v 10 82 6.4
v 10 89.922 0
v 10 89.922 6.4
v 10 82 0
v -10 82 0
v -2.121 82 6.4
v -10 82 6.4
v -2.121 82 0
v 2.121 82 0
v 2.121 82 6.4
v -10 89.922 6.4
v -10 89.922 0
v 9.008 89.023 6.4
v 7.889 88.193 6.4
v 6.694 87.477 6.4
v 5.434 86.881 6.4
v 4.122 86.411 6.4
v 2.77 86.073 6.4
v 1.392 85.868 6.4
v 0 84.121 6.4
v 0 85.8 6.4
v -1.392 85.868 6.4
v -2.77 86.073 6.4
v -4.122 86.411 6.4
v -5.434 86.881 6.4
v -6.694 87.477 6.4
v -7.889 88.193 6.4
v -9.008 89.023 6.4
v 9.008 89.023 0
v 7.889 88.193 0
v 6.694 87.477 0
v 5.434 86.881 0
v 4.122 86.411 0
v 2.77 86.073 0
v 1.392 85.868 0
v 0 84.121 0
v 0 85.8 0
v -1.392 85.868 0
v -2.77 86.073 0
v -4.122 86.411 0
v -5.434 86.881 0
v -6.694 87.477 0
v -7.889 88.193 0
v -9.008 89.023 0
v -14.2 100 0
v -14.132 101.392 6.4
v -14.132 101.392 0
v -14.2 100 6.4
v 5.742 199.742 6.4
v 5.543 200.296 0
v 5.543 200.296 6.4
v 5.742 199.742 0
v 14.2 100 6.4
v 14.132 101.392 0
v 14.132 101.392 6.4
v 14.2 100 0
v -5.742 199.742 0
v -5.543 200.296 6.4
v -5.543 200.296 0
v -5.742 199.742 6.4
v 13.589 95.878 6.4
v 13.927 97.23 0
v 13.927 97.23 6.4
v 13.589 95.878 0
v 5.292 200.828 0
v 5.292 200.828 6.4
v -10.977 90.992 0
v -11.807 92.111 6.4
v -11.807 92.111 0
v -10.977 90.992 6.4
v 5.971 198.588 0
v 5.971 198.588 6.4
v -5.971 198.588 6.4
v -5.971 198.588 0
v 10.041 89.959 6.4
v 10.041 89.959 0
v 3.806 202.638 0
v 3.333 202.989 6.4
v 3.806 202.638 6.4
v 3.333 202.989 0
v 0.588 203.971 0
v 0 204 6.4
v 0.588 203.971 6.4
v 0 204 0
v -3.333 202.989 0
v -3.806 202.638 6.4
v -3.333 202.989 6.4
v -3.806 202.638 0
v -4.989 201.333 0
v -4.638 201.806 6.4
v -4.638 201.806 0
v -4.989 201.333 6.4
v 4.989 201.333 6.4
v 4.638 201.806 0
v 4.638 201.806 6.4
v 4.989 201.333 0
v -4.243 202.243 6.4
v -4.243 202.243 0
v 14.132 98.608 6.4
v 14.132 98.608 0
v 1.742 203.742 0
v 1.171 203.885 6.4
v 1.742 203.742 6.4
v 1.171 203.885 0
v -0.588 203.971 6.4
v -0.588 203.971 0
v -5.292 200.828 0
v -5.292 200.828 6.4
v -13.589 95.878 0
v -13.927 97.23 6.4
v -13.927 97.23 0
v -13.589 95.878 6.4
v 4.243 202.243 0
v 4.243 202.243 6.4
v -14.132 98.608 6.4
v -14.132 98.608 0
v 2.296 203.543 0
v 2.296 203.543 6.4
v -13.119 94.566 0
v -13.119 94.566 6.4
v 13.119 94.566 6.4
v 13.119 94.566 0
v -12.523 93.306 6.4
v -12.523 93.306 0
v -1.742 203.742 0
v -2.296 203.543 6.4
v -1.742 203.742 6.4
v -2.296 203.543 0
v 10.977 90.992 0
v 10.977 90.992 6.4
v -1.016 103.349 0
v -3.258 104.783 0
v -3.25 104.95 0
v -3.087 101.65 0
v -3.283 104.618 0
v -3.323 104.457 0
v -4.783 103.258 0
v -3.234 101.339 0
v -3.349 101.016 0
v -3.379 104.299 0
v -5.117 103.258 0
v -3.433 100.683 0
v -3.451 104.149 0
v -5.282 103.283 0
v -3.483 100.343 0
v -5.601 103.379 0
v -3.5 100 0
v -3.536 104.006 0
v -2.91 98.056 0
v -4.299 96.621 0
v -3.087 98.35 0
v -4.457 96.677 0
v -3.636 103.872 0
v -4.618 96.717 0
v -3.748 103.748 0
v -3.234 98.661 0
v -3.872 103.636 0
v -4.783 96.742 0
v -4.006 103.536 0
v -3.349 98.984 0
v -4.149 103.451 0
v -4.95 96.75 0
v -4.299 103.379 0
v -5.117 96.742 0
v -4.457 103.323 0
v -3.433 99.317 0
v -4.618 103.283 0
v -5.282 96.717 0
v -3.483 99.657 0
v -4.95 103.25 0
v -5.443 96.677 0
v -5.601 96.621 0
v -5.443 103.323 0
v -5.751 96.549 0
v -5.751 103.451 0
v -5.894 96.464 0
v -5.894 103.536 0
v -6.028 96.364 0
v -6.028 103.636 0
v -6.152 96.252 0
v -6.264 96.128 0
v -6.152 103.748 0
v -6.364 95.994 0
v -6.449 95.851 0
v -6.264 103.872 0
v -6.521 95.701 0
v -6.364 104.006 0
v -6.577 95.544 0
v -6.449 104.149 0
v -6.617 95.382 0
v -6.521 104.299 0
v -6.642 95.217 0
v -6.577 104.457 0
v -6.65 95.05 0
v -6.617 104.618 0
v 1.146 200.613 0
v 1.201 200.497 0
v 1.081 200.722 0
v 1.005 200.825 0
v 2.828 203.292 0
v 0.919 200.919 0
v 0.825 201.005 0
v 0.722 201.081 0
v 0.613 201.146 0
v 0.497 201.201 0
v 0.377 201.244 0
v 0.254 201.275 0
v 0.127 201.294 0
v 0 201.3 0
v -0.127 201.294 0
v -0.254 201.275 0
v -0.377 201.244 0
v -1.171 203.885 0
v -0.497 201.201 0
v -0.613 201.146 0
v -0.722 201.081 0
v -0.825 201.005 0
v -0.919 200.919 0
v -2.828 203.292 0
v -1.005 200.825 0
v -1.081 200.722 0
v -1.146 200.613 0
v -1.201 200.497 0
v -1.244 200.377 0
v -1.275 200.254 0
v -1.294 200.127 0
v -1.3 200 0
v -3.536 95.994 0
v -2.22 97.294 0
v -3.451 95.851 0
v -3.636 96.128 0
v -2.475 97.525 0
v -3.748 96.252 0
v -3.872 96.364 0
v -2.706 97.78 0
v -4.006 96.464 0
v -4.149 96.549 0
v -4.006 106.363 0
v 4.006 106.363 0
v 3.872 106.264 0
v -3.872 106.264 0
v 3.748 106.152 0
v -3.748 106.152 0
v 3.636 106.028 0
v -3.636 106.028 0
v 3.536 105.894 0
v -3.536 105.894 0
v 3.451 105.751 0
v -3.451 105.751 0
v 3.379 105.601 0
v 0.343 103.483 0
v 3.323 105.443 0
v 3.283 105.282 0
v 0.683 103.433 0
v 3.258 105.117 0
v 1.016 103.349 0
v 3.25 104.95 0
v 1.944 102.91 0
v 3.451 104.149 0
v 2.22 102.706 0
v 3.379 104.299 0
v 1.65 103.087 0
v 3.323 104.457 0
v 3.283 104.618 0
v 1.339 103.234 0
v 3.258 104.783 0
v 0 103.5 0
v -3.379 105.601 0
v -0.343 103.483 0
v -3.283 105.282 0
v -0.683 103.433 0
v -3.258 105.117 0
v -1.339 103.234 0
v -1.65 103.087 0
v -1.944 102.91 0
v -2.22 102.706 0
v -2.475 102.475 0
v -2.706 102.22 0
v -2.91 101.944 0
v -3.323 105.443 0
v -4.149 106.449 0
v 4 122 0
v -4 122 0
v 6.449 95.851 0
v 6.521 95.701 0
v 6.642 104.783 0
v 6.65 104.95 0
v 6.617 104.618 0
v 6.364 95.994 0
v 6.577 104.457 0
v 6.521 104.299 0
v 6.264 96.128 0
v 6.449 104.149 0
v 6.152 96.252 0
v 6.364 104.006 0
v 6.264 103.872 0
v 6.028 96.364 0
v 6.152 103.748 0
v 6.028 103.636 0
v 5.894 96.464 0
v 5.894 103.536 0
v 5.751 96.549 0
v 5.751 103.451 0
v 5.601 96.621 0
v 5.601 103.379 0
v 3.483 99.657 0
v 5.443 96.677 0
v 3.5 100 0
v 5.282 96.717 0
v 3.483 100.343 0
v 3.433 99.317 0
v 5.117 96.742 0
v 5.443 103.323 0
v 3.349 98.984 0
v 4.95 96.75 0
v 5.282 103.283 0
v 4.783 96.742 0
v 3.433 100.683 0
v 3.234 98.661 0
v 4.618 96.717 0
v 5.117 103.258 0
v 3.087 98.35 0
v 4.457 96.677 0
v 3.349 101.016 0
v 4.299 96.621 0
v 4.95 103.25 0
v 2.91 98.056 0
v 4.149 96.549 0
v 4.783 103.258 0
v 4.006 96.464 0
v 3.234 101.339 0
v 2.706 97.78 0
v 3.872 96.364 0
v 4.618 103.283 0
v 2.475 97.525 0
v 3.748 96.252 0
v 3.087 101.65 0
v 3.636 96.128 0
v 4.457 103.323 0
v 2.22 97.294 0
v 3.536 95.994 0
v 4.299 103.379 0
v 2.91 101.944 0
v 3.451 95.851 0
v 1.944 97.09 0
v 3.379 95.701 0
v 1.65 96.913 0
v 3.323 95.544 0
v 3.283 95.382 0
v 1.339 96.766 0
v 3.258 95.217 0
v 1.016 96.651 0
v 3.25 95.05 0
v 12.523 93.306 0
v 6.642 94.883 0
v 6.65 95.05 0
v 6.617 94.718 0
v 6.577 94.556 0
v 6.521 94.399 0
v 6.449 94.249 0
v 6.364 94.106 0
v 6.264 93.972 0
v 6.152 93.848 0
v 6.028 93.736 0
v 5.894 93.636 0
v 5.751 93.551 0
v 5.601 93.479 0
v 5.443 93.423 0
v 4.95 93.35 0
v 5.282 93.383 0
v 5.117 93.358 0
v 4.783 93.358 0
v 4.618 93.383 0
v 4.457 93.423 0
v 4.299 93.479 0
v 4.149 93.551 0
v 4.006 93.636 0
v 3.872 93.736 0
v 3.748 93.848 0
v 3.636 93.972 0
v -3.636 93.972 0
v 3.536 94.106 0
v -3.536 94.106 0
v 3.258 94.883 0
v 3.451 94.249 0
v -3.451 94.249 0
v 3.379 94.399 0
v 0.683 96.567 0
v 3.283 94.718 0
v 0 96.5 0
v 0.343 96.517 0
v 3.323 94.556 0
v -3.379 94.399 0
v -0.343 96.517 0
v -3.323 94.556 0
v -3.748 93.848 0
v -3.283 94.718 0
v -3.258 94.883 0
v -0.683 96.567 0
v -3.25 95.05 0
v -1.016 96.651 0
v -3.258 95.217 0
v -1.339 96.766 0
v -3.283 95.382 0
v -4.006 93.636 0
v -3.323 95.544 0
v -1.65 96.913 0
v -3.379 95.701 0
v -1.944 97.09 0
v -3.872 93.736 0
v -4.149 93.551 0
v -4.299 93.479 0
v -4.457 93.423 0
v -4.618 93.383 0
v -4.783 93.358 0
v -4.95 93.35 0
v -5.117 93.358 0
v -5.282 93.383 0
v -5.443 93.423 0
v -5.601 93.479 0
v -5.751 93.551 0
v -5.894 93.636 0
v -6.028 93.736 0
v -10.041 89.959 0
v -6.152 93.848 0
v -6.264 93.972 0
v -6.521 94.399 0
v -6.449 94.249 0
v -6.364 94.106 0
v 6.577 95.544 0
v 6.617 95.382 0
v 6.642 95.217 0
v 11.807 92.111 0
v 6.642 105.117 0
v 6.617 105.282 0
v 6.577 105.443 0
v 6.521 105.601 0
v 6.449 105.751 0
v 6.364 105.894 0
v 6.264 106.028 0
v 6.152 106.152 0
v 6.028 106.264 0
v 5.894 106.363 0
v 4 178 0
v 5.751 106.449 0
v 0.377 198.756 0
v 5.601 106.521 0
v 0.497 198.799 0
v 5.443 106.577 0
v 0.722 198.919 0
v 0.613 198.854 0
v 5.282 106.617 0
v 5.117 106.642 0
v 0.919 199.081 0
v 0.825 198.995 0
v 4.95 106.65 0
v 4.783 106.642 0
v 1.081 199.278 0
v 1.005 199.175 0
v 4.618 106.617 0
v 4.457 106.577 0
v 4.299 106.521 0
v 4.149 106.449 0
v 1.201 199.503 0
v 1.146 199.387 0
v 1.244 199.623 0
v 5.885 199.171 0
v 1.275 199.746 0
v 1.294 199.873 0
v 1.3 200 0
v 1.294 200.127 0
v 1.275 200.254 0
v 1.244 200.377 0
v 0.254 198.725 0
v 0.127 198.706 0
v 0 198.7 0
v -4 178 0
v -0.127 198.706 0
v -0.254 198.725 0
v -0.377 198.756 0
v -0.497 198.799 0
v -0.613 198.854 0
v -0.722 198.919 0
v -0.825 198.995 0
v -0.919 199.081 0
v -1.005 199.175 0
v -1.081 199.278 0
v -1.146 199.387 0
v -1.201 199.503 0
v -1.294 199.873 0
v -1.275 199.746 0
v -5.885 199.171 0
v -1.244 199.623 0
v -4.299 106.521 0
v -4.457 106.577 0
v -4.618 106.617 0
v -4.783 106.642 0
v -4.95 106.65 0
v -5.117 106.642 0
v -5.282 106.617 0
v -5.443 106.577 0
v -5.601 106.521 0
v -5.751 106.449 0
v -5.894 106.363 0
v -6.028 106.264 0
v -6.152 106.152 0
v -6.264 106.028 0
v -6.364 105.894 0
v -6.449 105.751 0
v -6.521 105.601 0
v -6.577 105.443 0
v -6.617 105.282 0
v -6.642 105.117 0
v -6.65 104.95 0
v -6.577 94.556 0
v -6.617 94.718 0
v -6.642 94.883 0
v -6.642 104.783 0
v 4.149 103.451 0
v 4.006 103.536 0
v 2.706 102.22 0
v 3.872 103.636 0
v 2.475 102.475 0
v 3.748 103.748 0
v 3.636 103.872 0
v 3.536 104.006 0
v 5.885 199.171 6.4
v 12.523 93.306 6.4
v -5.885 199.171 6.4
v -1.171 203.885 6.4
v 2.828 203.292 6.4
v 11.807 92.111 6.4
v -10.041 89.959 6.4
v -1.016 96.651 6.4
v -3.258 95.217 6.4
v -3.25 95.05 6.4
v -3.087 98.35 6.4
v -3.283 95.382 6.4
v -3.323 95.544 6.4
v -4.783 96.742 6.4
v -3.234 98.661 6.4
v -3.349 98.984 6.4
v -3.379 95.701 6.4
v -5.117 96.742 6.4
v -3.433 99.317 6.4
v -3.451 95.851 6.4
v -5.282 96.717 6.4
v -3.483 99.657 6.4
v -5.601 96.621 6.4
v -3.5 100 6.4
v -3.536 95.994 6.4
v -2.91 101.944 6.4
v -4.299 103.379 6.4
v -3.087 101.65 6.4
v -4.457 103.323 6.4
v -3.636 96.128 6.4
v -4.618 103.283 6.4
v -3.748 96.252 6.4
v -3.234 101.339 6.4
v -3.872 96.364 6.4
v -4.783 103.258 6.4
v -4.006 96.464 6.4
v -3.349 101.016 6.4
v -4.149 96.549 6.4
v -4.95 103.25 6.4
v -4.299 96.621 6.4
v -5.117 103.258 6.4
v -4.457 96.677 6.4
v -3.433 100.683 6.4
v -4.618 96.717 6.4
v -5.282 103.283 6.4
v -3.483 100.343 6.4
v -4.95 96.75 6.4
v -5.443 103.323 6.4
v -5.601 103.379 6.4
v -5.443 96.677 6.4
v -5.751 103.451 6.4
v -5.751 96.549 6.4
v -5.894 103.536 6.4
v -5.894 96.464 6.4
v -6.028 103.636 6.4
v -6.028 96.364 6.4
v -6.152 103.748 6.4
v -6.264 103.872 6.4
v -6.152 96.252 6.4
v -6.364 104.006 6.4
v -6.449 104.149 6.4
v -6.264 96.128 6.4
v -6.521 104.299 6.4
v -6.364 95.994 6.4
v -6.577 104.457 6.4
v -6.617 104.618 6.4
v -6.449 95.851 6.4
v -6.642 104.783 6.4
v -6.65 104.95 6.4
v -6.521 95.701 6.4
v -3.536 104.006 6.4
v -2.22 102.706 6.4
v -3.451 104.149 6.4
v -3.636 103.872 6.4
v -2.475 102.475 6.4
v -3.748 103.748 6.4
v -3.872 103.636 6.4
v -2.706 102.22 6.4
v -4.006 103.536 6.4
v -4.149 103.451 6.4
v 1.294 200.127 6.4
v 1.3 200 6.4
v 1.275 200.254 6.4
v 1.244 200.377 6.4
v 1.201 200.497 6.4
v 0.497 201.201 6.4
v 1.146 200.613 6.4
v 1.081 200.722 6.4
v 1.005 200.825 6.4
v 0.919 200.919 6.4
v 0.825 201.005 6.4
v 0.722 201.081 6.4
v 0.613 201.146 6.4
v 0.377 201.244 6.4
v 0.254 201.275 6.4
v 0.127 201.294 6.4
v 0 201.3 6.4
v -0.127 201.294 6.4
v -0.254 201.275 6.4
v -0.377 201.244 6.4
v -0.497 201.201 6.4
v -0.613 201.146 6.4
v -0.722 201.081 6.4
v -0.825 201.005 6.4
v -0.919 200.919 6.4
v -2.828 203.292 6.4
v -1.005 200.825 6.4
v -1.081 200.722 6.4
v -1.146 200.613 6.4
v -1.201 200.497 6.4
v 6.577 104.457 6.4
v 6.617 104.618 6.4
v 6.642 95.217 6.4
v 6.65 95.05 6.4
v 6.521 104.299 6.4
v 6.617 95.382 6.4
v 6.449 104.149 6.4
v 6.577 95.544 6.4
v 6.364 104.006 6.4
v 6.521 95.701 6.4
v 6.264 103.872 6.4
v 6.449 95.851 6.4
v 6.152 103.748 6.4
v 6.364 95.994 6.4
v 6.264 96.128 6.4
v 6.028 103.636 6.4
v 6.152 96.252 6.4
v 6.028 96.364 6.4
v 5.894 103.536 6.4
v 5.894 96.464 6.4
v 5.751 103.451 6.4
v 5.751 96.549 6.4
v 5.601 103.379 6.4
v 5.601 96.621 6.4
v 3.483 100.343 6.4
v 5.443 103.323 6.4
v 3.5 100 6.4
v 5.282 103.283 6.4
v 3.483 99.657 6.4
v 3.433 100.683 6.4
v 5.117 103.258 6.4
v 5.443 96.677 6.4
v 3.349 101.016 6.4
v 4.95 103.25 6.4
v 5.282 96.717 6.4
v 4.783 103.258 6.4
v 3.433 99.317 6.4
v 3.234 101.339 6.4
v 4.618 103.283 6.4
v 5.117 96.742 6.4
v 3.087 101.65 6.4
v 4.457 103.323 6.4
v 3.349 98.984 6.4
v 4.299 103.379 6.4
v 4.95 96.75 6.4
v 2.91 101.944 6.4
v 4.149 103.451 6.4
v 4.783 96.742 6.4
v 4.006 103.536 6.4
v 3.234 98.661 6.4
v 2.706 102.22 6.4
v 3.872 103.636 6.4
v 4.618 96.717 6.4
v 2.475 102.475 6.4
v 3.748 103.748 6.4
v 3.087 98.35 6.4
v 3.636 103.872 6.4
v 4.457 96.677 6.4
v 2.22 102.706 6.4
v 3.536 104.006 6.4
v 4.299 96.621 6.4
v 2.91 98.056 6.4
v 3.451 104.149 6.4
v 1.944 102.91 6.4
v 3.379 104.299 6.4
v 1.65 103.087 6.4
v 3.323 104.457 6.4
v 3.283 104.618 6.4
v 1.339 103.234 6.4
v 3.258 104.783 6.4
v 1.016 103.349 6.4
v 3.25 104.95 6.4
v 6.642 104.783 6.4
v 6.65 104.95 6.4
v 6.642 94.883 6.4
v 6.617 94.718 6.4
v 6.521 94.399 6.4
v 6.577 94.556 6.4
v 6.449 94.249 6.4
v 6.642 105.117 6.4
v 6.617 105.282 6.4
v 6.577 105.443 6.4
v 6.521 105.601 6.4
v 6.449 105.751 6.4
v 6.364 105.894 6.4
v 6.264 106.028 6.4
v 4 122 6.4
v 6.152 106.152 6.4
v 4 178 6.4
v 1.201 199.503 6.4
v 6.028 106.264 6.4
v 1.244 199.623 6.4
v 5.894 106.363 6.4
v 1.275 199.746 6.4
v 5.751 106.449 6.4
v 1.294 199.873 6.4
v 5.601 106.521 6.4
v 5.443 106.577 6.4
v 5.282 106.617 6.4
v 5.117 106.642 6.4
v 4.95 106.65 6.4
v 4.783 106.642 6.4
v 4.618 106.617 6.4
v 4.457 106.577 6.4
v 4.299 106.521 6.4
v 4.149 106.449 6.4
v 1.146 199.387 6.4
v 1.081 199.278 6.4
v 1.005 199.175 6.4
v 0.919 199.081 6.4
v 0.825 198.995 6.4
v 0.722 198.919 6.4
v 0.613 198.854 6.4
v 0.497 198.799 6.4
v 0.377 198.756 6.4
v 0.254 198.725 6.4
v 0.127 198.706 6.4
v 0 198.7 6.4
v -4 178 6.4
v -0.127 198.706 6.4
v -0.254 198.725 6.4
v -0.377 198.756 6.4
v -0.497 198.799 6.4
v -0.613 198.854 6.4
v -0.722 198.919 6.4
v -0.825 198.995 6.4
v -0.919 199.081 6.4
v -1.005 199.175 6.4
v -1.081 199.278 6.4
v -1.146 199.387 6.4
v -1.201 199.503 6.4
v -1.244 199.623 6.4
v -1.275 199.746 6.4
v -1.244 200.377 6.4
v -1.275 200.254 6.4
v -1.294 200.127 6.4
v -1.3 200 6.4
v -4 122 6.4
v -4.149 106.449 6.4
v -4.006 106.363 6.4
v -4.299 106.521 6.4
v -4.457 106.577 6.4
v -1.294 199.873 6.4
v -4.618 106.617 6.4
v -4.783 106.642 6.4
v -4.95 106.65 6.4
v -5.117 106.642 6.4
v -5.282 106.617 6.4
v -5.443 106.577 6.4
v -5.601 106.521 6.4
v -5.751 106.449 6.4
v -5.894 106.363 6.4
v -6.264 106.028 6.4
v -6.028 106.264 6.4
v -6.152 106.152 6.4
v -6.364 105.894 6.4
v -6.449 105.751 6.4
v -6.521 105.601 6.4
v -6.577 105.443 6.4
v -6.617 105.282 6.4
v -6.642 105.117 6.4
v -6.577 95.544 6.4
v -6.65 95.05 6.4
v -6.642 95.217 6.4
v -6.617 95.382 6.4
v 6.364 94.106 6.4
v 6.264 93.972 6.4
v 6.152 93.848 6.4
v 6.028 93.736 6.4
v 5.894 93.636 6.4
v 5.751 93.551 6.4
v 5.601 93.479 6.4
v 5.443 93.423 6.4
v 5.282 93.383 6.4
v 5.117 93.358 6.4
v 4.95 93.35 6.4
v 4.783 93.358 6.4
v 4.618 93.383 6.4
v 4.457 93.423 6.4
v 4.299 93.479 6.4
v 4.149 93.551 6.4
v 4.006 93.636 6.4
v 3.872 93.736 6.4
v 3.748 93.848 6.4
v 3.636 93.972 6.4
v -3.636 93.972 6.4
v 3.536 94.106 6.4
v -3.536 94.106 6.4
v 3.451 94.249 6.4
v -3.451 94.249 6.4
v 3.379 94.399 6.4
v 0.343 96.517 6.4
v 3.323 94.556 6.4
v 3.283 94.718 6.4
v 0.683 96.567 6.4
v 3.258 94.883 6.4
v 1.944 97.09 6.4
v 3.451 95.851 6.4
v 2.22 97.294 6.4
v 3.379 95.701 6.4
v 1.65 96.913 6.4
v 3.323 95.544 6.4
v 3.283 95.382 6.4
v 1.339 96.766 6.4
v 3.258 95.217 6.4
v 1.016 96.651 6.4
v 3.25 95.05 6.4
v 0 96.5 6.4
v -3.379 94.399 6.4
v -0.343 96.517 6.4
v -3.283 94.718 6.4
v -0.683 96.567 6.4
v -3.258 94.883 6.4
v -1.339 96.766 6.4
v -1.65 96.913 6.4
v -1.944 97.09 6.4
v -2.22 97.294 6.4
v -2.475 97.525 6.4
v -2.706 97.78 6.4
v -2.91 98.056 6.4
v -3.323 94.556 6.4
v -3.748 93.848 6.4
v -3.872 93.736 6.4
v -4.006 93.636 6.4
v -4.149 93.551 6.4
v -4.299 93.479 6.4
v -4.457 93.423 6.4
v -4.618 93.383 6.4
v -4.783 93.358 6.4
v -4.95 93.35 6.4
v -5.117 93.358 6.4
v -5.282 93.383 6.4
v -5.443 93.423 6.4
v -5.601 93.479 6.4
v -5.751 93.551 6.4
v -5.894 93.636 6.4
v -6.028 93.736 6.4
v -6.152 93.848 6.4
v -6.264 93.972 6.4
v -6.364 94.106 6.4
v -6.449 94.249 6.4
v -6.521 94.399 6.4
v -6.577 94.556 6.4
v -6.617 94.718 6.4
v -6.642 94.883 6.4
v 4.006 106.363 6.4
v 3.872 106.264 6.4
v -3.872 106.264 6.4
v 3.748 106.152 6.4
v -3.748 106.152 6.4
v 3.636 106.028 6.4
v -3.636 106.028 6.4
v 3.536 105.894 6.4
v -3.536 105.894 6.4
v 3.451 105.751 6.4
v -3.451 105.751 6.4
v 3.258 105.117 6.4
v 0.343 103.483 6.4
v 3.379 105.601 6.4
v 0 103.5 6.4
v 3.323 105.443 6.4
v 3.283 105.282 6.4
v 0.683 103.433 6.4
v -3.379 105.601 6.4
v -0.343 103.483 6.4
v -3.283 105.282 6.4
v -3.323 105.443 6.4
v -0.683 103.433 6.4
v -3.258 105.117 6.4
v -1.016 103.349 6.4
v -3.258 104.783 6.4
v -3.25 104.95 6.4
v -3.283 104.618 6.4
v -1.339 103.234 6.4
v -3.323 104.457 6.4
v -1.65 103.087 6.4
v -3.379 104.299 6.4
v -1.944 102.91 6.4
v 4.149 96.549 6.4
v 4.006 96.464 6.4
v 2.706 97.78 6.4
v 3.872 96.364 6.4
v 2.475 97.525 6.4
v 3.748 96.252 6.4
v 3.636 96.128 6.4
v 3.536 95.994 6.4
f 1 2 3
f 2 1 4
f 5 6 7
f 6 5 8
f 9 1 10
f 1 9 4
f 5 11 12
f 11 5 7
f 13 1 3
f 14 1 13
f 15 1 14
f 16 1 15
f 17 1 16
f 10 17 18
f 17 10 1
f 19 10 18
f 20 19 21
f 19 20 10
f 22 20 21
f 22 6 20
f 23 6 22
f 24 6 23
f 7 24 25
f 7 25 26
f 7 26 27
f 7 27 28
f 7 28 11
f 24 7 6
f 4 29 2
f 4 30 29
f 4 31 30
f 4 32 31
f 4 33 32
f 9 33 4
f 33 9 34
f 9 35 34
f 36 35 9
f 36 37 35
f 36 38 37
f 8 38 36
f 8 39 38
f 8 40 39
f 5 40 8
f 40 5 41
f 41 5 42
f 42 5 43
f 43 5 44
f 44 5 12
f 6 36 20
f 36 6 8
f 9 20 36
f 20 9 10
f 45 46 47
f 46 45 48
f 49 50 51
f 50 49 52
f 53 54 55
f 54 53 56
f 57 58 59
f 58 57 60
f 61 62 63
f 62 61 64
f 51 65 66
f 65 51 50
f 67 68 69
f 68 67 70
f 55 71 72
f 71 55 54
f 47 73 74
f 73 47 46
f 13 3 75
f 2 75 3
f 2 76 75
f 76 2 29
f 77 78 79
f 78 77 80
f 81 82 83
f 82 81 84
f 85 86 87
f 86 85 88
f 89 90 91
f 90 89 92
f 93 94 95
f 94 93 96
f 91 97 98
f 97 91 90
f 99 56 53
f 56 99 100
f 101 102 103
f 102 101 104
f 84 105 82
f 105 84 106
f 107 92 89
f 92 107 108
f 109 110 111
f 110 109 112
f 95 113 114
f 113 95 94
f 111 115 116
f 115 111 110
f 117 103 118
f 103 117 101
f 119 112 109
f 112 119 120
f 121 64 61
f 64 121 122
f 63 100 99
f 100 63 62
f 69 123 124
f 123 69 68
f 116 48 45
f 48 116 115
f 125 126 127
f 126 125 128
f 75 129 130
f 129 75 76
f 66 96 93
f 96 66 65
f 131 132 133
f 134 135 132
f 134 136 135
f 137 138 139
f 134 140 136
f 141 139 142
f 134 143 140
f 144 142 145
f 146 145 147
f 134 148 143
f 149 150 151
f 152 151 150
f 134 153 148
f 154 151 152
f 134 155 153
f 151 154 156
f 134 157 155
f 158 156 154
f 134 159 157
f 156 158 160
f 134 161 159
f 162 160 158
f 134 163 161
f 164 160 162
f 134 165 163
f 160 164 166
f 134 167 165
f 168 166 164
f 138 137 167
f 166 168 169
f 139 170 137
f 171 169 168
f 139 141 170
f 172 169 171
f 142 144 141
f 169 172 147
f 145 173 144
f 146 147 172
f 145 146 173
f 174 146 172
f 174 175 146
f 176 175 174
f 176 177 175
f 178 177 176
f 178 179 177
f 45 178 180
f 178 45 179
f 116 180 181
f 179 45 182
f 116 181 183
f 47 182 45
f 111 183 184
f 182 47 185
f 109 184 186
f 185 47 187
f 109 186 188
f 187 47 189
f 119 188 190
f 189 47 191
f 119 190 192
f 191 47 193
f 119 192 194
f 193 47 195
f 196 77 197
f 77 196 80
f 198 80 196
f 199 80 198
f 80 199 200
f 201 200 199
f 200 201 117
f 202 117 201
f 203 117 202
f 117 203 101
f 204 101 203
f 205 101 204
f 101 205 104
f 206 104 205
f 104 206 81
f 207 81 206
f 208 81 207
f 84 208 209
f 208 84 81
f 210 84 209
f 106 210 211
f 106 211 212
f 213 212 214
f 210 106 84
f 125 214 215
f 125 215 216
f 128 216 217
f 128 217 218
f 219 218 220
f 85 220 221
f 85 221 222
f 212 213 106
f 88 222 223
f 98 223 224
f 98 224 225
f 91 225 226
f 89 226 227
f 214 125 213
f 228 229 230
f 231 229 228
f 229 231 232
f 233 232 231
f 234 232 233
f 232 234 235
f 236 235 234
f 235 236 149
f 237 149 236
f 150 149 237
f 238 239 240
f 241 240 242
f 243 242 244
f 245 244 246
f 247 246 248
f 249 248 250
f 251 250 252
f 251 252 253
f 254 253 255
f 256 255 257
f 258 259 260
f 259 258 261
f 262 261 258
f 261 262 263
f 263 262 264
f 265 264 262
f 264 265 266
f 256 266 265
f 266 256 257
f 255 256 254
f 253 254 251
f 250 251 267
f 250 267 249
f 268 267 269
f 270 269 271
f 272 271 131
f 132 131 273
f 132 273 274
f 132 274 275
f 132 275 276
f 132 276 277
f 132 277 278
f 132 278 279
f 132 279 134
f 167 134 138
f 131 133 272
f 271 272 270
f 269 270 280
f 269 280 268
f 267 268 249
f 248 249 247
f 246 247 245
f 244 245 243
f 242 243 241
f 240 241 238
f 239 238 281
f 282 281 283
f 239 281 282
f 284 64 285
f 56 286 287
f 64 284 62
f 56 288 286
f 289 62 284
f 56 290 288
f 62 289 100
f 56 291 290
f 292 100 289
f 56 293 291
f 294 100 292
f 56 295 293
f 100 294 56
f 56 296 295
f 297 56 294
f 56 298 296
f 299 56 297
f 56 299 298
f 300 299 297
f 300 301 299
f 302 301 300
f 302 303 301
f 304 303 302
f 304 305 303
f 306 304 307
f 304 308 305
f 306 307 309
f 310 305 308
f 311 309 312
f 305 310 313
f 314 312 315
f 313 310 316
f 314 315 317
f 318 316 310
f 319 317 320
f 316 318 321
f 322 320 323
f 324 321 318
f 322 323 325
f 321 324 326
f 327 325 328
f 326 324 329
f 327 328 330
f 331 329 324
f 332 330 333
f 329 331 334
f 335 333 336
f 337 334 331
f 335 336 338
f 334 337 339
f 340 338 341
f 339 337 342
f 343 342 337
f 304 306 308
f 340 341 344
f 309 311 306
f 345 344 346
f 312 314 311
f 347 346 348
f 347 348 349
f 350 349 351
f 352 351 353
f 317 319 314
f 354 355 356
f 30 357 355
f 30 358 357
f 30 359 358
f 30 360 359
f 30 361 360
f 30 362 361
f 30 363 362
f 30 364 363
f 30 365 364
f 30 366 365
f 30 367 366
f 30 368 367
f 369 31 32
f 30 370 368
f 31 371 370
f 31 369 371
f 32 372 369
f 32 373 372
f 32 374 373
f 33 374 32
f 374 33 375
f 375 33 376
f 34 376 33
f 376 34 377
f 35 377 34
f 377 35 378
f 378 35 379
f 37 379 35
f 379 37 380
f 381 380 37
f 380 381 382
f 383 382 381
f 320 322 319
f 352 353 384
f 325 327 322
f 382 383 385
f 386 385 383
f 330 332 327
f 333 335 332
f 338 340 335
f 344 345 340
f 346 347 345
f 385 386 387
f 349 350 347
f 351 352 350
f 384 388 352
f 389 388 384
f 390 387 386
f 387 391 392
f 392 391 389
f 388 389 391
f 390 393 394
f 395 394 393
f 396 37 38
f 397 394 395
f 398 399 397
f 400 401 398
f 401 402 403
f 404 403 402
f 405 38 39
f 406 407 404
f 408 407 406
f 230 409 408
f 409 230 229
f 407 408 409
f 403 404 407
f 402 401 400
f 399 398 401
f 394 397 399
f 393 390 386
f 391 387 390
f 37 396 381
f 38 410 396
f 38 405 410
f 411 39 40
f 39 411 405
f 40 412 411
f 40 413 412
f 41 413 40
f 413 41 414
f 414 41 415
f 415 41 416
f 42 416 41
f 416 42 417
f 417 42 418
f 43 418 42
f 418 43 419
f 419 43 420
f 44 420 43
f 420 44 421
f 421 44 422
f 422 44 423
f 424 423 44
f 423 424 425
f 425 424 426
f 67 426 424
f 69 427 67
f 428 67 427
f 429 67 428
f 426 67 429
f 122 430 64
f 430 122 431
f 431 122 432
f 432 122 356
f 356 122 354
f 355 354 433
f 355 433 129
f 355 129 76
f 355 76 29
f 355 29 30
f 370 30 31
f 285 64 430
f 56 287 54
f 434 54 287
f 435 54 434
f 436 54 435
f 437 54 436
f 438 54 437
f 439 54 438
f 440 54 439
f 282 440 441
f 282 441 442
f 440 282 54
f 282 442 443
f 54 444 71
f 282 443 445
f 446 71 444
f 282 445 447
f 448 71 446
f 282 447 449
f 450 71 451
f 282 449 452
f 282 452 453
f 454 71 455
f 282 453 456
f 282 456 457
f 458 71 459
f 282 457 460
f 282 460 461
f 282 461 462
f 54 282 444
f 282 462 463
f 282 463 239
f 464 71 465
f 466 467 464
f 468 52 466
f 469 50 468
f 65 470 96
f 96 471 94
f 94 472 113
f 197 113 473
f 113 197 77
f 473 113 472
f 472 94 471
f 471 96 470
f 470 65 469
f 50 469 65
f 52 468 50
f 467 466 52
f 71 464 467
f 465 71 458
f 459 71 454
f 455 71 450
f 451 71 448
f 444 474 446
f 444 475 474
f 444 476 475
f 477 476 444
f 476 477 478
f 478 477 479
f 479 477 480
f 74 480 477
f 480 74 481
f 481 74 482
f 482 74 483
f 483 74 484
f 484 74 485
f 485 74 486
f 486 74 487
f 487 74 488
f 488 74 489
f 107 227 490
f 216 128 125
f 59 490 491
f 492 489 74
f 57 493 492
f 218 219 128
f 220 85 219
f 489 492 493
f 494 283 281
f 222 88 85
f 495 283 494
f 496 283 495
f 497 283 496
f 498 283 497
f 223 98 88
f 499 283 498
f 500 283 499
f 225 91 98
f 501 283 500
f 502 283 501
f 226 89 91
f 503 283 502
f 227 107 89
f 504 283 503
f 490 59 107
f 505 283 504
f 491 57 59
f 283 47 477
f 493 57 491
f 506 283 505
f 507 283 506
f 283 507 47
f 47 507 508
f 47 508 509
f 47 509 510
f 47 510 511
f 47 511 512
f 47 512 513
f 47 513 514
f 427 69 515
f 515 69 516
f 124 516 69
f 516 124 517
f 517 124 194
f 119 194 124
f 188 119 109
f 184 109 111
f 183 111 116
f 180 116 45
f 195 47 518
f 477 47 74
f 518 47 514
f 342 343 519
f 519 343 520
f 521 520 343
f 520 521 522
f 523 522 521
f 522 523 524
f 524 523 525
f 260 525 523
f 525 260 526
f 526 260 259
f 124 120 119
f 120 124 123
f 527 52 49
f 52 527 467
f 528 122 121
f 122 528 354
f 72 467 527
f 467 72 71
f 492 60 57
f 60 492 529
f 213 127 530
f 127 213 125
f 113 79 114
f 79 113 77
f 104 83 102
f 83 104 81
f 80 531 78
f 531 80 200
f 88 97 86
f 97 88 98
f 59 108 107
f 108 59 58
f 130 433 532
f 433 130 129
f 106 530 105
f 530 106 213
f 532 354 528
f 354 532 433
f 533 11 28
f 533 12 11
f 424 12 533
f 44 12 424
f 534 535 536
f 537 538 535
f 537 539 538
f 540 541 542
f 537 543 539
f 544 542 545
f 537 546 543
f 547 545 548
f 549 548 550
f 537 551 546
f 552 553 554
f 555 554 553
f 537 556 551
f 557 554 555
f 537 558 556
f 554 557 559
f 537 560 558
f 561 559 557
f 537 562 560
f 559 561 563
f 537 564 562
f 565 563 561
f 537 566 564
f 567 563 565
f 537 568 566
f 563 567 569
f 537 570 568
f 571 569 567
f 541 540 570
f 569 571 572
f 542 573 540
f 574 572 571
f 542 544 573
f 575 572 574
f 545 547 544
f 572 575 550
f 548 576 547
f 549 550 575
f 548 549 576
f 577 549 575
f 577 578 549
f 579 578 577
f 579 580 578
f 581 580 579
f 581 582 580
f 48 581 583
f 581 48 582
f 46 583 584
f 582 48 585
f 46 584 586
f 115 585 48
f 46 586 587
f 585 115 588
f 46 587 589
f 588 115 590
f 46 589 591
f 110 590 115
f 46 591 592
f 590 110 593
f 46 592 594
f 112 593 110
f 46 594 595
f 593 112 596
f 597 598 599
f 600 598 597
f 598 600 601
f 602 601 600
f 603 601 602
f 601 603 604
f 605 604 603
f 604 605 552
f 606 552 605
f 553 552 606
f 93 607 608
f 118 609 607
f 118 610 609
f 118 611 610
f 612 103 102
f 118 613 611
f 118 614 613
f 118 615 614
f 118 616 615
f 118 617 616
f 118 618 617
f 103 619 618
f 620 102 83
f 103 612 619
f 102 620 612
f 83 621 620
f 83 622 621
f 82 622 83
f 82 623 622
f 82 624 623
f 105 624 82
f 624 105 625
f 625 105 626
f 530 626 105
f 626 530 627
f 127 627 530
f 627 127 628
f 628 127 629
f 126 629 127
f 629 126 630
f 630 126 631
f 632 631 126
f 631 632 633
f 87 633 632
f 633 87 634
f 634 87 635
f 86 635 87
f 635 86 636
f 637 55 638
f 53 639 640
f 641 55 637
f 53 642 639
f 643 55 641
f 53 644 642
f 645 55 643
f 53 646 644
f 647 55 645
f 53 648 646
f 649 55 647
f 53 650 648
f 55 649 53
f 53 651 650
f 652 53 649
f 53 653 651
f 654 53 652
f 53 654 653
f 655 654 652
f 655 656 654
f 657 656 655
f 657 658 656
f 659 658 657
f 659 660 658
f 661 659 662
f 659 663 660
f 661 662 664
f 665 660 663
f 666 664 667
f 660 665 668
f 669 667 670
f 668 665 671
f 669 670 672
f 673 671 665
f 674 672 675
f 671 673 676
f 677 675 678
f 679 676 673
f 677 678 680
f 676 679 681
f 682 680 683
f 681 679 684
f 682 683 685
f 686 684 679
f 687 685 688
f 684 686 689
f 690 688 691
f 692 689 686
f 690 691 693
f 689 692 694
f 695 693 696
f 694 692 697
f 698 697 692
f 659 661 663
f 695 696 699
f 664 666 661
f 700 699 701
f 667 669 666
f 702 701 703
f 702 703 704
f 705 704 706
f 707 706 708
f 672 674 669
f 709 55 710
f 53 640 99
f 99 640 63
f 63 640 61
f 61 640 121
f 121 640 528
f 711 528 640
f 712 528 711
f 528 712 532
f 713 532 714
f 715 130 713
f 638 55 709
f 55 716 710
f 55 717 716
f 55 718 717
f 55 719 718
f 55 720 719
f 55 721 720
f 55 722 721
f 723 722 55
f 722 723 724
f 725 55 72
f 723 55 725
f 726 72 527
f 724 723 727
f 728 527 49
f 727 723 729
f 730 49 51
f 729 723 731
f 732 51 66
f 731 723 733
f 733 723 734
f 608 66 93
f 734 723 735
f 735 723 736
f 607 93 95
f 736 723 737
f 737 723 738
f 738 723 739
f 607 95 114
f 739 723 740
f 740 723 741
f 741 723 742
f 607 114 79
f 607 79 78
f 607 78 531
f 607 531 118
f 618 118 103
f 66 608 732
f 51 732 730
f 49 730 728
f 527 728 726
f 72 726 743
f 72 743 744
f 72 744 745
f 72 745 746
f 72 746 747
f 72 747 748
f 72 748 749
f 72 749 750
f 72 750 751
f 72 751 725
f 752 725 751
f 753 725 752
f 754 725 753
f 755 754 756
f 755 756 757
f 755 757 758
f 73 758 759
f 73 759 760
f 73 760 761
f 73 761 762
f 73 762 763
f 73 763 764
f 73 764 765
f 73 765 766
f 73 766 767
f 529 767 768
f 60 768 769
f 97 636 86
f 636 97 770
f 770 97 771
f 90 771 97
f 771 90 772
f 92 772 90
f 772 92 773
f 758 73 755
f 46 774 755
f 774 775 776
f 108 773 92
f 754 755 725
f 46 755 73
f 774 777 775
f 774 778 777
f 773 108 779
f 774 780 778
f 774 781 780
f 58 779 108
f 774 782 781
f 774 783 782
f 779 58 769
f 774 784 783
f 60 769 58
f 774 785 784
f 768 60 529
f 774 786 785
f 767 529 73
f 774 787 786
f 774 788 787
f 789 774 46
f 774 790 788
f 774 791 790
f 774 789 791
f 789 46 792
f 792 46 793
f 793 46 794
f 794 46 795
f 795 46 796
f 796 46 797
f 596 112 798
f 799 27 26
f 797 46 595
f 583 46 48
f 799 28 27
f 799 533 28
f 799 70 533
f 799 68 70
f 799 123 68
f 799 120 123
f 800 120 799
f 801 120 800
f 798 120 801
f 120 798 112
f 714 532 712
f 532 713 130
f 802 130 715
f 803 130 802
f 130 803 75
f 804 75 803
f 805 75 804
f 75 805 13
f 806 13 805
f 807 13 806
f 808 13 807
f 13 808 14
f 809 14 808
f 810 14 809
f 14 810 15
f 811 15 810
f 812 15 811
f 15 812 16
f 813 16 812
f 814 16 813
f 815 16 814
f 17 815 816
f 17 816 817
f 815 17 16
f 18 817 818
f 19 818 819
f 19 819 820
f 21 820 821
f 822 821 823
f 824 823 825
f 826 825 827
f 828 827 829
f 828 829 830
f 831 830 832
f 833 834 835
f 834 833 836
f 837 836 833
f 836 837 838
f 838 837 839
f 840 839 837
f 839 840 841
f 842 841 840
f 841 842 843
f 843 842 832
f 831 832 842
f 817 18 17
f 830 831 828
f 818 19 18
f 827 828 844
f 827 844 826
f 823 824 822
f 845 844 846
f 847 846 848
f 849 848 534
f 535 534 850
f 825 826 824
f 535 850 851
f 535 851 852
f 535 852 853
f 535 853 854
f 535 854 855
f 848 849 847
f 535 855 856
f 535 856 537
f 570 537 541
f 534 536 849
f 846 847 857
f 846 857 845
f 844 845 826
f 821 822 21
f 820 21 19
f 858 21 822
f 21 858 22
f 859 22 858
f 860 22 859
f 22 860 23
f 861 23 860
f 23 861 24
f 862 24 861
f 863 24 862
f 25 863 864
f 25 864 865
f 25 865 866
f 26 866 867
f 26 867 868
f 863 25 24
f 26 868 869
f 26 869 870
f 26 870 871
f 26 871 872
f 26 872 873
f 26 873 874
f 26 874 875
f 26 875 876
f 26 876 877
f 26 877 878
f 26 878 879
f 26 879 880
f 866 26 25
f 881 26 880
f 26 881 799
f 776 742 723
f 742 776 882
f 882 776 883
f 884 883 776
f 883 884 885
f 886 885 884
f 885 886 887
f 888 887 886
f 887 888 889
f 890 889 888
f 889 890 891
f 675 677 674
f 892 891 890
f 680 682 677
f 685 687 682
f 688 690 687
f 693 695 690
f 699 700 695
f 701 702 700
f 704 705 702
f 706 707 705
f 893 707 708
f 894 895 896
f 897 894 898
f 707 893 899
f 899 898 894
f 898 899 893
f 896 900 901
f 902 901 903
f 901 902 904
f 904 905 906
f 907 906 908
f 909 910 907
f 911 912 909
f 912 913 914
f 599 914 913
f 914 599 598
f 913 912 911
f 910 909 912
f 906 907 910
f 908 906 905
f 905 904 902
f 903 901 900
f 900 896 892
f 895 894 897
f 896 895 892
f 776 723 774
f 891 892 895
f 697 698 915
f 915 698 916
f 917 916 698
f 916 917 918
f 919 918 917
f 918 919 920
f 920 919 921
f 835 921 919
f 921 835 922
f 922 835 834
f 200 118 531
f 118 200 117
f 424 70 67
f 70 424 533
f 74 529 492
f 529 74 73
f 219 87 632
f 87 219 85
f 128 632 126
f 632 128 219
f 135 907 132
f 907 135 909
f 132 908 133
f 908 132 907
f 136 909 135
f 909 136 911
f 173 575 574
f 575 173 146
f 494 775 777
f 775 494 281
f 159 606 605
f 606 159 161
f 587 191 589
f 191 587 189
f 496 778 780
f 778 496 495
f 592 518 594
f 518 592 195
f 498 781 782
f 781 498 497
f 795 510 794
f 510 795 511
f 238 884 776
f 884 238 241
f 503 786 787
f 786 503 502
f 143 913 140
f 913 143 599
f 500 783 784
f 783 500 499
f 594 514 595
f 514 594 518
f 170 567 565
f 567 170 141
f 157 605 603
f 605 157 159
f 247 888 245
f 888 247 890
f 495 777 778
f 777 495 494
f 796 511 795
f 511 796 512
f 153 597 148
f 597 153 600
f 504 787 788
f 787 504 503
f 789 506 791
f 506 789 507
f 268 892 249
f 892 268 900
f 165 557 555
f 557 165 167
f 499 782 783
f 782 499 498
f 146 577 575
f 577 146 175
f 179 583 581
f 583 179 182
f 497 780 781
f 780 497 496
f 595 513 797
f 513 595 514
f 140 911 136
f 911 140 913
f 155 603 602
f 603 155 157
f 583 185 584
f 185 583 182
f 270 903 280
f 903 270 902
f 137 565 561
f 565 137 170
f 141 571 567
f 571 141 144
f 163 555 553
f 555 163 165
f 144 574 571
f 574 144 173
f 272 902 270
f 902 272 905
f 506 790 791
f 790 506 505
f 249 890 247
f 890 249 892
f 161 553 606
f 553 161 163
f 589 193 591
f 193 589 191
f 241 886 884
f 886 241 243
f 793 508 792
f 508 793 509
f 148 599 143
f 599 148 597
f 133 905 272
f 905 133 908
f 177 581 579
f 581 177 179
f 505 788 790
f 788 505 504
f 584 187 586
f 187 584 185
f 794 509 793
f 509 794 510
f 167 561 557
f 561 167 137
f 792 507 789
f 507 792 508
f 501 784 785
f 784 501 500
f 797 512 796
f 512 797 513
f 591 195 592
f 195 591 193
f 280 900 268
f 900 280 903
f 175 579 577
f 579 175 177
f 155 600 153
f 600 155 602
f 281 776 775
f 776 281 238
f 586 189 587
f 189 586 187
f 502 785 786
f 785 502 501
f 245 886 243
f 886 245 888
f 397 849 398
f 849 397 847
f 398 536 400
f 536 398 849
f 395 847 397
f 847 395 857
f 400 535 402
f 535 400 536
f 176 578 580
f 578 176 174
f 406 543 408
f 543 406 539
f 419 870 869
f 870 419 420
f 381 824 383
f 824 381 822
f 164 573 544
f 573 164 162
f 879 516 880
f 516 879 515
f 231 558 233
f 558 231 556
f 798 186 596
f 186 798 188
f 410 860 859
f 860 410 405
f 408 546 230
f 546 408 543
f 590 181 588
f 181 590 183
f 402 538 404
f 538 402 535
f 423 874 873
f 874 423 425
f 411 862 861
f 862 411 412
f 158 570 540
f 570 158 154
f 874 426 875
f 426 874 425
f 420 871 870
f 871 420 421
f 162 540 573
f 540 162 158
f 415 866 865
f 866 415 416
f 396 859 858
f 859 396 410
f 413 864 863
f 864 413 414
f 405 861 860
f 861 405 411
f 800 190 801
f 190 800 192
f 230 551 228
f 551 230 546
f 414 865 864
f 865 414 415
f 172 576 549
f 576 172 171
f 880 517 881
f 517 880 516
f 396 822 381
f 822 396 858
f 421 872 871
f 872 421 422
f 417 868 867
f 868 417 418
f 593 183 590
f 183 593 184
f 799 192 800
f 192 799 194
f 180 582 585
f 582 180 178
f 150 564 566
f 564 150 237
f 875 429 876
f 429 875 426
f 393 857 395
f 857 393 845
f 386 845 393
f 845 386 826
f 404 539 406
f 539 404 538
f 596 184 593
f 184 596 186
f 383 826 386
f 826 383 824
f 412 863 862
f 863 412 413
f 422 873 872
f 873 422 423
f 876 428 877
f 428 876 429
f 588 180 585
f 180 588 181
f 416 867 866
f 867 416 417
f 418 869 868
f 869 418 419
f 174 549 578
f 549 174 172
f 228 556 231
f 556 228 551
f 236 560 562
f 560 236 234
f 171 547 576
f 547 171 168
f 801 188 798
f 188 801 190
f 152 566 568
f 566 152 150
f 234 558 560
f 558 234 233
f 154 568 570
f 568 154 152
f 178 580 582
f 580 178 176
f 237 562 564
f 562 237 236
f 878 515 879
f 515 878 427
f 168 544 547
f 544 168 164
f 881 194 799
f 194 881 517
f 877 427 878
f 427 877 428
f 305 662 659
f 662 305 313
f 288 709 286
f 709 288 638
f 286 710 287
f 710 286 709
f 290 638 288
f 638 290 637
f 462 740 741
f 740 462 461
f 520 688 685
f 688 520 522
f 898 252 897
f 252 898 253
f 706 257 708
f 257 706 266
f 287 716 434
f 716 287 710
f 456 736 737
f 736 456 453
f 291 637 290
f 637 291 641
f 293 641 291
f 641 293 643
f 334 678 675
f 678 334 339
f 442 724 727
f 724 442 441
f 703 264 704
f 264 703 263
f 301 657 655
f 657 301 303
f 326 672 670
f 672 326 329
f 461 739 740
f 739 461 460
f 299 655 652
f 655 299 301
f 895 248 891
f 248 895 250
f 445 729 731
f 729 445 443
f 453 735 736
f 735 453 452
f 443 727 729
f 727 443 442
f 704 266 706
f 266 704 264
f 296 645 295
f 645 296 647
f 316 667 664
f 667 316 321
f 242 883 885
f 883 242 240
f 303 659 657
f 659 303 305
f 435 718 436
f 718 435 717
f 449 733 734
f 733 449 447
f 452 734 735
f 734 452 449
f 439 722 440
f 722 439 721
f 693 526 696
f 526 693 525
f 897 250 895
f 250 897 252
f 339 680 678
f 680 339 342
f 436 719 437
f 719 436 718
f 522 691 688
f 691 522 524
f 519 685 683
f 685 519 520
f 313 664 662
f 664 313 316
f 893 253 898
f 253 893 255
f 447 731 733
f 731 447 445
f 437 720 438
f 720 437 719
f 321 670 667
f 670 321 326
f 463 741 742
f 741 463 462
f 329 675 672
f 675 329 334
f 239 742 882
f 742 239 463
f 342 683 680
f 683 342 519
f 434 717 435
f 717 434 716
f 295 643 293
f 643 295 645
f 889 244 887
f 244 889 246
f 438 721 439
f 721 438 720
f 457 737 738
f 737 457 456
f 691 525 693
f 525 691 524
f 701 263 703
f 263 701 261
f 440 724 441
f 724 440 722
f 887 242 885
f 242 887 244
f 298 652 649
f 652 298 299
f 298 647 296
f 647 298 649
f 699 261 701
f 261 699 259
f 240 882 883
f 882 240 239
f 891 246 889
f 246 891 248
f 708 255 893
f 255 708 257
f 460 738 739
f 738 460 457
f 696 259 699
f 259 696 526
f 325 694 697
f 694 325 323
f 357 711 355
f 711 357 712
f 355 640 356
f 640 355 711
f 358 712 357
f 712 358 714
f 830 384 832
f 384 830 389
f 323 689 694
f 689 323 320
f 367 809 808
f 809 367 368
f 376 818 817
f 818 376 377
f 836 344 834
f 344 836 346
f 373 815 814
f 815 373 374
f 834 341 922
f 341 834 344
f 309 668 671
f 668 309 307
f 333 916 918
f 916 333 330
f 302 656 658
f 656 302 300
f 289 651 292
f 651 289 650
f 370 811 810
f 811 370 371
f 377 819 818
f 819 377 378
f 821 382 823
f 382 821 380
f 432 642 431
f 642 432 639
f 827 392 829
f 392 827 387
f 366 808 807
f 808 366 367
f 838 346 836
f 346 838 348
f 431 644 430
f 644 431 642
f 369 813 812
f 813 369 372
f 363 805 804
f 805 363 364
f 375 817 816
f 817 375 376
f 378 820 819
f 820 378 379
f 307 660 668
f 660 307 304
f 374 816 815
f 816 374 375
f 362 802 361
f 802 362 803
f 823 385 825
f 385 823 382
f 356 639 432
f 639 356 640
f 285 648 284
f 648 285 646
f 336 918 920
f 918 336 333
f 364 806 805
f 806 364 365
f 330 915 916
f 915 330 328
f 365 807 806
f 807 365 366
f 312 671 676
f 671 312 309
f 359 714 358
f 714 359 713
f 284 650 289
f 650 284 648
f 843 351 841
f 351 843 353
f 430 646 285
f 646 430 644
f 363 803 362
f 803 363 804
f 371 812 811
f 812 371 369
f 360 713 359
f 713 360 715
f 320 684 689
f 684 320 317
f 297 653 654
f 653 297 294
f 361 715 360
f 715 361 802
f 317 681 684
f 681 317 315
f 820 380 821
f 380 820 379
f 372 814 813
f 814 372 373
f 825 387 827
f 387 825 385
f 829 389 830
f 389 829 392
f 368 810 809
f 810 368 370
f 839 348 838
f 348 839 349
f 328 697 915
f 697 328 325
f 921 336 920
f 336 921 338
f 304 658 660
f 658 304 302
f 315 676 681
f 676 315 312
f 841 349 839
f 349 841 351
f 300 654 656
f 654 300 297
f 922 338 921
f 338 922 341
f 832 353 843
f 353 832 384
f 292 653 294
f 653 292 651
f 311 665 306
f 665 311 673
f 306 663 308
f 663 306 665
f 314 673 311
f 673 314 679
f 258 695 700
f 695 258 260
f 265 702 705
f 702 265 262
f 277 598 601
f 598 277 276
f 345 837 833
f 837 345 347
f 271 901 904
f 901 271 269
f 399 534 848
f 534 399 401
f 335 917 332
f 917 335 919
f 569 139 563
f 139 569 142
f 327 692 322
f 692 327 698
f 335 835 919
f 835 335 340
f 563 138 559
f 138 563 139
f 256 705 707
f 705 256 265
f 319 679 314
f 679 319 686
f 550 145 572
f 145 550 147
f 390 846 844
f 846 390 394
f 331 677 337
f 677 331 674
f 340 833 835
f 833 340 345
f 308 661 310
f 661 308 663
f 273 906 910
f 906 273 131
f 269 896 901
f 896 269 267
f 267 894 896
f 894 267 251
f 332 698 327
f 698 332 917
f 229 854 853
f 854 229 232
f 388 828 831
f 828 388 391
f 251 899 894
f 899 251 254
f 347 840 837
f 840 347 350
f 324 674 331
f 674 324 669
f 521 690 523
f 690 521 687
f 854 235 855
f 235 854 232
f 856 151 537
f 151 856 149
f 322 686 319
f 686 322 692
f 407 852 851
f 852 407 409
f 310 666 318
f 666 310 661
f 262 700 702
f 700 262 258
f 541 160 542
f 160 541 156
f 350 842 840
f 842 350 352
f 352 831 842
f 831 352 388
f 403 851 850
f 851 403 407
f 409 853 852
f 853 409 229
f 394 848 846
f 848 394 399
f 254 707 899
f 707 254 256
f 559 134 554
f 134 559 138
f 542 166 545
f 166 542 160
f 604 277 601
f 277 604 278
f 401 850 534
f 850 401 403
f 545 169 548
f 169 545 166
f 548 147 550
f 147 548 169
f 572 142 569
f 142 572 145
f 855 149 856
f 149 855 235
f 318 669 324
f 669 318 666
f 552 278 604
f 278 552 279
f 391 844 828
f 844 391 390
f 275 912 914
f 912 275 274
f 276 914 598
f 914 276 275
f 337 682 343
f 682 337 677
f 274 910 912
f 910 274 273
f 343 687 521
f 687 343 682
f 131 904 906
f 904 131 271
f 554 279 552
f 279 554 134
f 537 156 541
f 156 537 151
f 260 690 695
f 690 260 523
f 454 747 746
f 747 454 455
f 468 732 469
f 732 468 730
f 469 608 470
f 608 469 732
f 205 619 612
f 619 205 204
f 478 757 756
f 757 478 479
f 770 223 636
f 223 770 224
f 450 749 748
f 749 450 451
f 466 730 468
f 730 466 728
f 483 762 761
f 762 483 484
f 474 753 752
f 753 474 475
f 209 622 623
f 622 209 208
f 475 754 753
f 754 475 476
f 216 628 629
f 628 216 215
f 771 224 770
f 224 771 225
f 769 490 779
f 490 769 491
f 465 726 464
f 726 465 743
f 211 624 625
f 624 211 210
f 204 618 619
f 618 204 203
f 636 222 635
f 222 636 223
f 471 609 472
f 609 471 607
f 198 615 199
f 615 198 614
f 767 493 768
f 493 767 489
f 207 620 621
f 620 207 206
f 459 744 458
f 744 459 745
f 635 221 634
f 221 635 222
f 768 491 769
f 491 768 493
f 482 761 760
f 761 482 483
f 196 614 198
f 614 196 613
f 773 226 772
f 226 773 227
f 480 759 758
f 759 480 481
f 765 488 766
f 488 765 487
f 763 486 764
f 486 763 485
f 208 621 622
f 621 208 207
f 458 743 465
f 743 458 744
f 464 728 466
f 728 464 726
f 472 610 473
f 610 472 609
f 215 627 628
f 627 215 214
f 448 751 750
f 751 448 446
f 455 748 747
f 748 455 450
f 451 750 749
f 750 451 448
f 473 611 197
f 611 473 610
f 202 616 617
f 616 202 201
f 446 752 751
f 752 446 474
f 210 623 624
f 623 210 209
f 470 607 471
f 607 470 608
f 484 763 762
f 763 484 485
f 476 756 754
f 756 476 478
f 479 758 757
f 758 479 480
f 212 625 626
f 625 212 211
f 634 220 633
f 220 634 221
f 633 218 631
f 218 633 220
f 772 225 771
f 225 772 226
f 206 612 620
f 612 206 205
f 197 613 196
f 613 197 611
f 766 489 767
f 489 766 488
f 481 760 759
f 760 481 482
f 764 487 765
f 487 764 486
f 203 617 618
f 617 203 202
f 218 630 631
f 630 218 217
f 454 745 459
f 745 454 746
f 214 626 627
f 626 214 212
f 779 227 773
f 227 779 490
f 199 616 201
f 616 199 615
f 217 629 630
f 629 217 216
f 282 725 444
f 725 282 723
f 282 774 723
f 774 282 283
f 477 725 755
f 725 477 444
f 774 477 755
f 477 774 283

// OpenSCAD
// file: ../params.scad
// =====================================================================
//  Pip v2 — assembly-first robot dog. Shared parameters (mm).
//  Design rules: docs/ASSEMBLY_FIRST_DESIGN.md §3. Every part is built
//  by straight-down moves; the precision lives in the parts.
//  Keep in sync with software/config.yaml (tests/test_cad_sync.py checks).
// =====================================================================
$fn = 64;

// ---------- Feetech STS3215 bus servo (12 V, 30 kg·cm) ------------------
// Measured from the SO-ARM100 project's STS3215 model. Servo frame used
// below: origin = output axis on the case top face, +Z = shaft, +X = long
// axis from the shaft toward the far end of the case.
servo_len       = 45.4;
servo_wid       = 24.8;
servo_case_h    = 32.0;   // top face -> case bottom
servo_bottom    = 4.0;    // rear idler disc + connector pins below the case
servo_shaft_off = 10.2;   // shaft centre -> near end of the case
horn_d          = 20.0;   // aluminium disc horn
horn_t          = 1.6;
horn_hole_sq    = 9.9;    // 4 tapped M3 holes on a 9.9 mm square
horn_screw_clear_d = 7.0; // centre spline-screw head clearance
servo_mass_g    = 55;     // assumed (not measured)

// ---------- one fastener for everything: M3 x 8 socket head -----------
screw_len   = 8;
m3_clear    = 3.4;
m3_pilot    = 2.6;        // self-tapping an M3 machine screw into PETG
fit         = 0.3;        // clearance around servo cases & docks
lead_in     = 1.5;        // chamfer on every mating edge (capture range)

// ---------- servo cup (the one standard servo holder) ------------------
cup_side    = 3.5;
cup_end     = 8.0;        // end walls carry the cap screws
cup_floor   = 2.5;
cup_depth   = servo_case_h + servo_bottom + cup_floor;     // 38.5
cup_x0      = -servo_shaft_off - fit - cup_end;            // -18.5
cup_x1      = servo_len - servo_shaft_off + fit + cup_end; //  43.5
cup_hw      = servo_wid / 2 + fit + cup_side;              //  16.2
cap_t       = 1.2;        // thinner than the horn so links clear it
cap_screw_x = [cup_x0 + cup_end / 2, cup_x1 - cup_end / 2];
cap_screw_y = 9;

// link plates bolt straight onto the horn: plate + horn = screw length
link_t      = screw_len - horn_t;                          // 6.4

// ---------- grip lug (rule 7): flats 20 mm apart + 3 mm datum notch ----
lug_w = 20; lug_h = 8; datum = 3;

// ---------- body / leg layout (body frame: X fwd, Y left, Z up) -------
bx        = 95;    // hip axis X (front +, rear -)
rim_y     = 45;    // |Y| of the pitch servo top face = tray side face
L2        = 100;   // hip axis -> knee axis
L3        = 100;   // knee axis -> foot ball centre
foot_d    = 22;
// lateral stack, measured outward from the pitch-servo top face
upper_in  = rim_y + horn_t;            // 46.6
upper_out = upper_in + link_t;         // 53.0 = knee servo top face
lower_in  = upper_out + horn_t;        // 54.6
lower_out = lower_in + link_t;         // 61.0
foot_y    = (lower_in + lower_out) / 2;// 57.8  (software: geometry.foot_y)

// tray
tray_wall   = 3;
tray_floor  = 3;
tray_z0     = cup_x0 - tray_floor;     // -21.5 (hip block bottom = floor top)
tray_z1     = cup_x1;                  //  43.5 (hip block top = deck bottom)
sock_wall   = 3;
sock_hw     = cup_hw + fit;            // socket half width in X
tongue_w    = 5; tongue_d = 2.5;
tongue_y    = -(rim_y - cup_depth / 2);// tongue centre (Y, right side)
sock_in_y   = -(rim_y - cup_depth) + fit;   // socket inboard wall inner face
tray_hx     = bx + sock_hw + tongue_d + sock_wall + 0.5;
deck_t      = 3;

// neck: pan servo cup built into the tray, rim just above the deck
pan_x     = 53;
pan_rim_z = tray_z1 + deck_t + 0.1;    // 46.6
bracket_z0 = pan_rim_z + horn_t;       // pan bracket sits on the horn
bracket_z1 = bracket_z0 + link_t;
// tilt servo stands upright in a sleeve on the bracket, shaft -> -Y
tilt_top_y = -14;                      // tilt servo top face (Y)
tilt_rest  = 3.5;                      // servo rests on ribs clear of the pan-horn screw heads
tilt_z     = bracket_z1 + tilt_rest + fit + (servo_len - servo_shaft_off); // tilt axis Z
sleeve_wall = 6;                       // thick X walls take the cap screws

echo(str("foot_y=", foot_y, "  tray=", 2*tray_hx, " x ", 2*rim_y,
         "  tilt axis z=", tilt_z));
// main file
// Print 4x (identical), flat. PETG, 4 walls, 40%.
include <../lib.scad>
translate([-bx, 0, lower_out]) rotate([90, 0, 0]) lower_link();
